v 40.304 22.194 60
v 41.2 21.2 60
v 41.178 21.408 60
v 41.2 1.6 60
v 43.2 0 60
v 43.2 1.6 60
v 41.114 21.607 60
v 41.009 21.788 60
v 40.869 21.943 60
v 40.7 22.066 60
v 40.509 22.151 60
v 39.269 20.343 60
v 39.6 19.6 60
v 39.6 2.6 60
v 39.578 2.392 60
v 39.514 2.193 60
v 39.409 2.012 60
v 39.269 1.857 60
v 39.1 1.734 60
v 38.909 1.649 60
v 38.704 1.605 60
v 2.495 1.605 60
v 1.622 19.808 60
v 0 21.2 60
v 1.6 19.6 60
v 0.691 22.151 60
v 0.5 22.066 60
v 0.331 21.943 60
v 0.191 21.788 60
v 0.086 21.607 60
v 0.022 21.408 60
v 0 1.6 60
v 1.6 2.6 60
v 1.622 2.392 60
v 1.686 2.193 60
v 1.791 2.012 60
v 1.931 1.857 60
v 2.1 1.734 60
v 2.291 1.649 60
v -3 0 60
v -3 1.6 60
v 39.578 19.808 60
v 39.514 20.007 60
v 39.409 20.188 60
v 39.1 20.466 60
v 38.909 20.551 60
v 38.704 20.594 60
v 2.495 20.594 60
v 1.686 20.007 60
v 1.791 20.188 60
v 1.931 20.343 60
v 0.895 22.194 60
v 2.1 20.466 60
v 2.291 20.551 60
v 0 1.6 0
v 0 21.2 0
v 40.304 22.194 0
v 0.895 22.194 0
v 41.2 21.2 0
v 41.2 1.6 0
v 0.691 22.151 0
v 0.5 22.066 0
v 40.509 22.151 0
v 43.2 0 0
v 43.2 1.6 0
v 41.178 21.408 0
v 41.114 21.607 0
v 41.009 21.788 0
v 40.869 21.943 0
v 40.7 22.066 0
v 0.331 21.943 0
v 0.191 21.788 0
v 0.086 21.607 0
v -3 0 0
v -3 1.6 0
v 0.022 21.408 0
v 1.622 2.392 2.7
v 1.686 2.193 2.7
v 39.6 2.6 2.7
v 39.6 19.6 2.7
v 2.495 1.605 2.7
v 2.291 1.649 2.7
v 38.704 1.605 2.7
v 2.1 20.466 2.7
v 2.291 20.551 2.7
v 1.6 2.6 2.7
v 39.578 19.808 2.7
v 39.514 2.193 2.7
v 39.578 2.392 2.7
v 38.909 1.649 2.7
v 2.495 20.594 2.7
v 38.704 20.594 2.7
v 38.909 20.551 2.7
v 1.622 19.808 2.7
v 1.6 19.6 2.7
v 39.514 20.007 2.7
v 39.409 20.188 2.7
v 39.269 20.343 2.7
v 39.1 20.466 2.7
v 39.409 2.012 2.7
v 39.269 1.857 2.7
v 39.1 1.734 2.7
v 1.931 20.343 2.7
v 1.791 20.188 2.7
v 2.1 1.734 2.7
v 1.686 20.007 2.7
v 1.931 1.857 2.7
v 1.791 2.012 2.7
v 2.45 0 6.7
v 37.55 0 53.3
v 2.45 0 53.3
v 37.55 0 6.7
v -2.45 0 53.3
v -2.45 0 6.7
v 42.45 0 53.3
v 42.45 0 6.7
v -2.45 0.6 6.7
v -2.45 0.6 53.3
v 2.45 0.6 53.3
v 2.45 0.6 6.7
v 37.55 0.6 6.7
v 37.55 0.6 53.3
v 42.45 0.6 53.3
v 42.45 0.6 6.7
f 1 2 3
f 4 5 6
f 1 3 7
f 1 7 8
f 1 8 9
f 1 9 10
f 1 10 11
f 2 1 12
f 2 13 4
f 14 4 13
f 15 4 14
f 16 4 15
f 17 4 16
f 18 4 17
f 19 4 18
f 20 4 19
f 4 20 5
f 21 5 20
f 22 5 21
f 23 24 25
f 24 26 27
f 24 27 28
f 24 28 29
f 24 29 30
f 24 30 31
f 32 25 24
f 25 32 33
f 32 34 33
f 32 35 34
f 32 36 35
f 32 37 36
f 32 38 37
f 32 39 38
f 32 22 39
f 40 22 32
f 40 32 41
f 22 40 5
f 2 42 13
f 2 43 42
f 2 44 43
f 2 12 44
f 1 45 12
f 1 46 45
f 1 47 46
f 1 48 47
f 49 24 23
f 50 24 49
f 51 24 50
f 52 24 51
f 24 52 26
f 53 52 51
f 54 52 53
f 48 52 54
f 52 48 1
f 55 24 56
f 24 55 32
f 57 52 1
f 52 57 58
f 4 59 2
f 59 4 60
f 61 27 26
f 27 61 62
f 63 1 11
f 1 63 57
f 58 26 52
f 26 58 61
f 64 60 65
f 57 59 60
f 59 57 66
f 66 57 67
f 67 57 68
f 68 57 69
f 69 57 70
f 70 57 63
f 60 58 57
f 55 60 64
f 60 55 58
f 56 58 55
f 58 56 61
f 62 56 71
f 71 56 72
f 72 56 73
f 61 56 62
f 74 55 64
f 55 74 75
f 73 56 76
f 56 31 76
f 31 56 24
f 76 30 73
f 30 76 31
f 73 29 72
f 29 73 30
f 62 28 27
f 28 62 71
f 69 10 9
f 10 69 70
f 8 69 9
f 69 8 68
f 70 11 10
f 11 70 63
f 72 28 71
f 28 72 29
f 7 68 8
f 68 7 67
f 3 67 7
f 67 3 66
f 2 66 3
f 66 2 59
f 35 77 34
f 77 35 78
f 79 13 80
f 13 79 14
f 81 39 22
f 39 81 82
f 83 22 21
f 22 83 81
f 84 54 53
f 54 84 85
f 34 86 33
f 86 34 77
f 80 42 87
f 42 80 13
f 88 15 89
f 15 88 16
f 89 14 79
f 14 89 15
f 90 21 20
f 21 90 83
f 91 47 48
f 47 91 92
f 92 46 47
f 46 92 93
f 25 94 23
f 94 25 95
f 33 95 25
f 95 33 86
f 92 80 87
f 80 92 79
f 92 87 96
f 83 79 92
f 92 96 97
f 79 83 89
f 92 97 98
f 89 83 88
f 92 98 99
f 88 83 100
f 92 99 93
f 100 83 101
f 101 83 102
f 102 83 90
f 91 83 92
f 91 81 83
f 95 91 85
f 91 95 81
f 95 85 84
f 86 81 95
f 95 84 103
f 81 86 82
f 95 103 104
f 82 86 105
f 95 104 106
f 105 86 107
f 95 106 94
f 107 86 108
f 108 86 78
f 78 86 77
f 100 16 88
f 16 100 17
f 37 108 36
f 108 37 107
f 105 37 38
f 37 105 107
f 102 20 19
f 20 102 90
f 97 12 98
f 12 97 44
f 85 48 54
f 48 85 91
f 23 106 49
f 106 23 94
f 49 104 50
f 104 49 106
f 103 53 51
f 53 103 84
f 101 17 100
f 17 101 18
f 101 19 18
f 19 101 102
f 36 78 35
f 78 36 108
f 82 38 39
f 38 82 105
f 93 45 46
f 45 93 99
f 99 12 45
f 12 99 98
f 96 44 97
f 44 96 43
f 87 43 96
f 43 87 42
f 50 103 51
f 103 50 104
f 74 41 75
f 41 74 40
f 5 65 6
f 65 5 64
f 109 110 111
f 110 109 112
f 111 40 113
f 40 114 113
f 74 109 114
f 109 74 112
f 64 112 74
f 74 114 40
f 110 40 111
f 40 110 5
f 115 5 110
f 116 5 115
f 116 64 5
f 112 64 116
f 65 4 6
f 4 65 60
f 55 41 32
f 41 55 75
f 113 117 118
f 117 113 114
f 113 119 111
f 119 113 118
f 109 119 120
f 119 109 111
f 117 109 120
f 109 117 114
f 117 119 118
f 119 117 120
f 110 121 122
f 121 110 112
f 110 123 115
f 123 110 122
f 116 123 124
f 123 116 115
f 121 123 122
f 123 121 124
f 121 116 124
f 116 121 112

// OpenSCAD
// file: ../../../modules/scad/roundedcube.scad
// More information: https://danielupshaw.com/openscad-rounded-corners/


// Examples
// color("Yellow")
// roundedcube(3, true, 0.7, "xmin");

// translate(v = [1, 0, 2])
// color("Pink")
// roundedcube([4, 2, 2], false, 0.6, "zmax");

// translate(v = [-4, -1, 2])
// color("Lightblue")
// roundedcube(2, false);

// translate(v = [0, 0, 6])
// color("Orange")
// roundedcube([3, 2, 2], true, 0.2);

// translate(v = [2.5, -0.5, 5])
// color("Green")
// roundedcube([3, 2, 2], false, 0.4, "z");

// Set to 0.01 for higher definition curves (renders slower)
$fs = 0.15;

module roundedcube(size = [1, 1, 1], center = false, radius = 0.5, apply_to = "all") {
	// If single value, convert to [x, y, z] vector
	size = (size[0] == undef) ? [size, size, size] : size;

	translate_min = radius;
	translate_xmax = size[0] - radius;
	translate_ymax = size[1] - radius;
	translate_zmax = size[2] - radius;

	diameter = radius * 2;

	obj_translate = (center == false) ?
		[0, 0, 0] : [
			-(size[0] / 2),
			-(size[1] / 2),
			-(size[2] / 2)
		];

	translate(v = obj_translate) {
		hull() {
			for (translate_x = [translate_min, translate_xmax]) {
				x_at = (translate_x == translate_min) ? "min" : "max";
				for (translate_y = [translate_min, translate_ymax]) {
					y_at = (translate_y == translate_min) ? "min" : "max";
					for (translate_z = [translate_min, translate_zmax]) {
						z_at = (translate_z == translate_min) ? "min" : "max";

						translate(v = [translate_x, translate_y, translate_z])
						if (
							(apply_to == "all") ||
							(apply_to == "xmin" && x_at == "min") || (apply_to == "xmax" && x_at == "max") ||
							(apply_to == "ymin" && y_at == "min") || (apply_to == "ymax" && y_at == "max") ||
							(apply_to == "zmin" && z_at == "min") || (apply_to == "zmax" && z_at == "max")
						) {
							sphere(r = radius);
						} else {
							rotate = 
								(apply_to == "xmin" || apply_to == "xmax" || apply_to == "x") ? [0, 90, 0] : (
								(apply_to == "ymin" || apply_to == "ymax" || apply_to == "y") ? [90, 90, 0] :
								[0, 0, 0]
							);
							rotate(a = rotate)
							cylinder(h = diameter, r = radius, center = true);
						}
					}
				}
			}
		}
	}
}
// file: IKEA Skadis v2 hook cutouts.scad
skadis_hook_width = 4.5;
skadis_hook_height = 46;
skadis_hole_spacing_width = 40; // middle to middle
cutout_tolerance_w = 0.4;
cutout_tolerance_h = 0.6;


module skadis_hook_cutout(center=false, hook_count=2) {
    
    if(center) {
        translate([-(skadis_hole_spacing_width + skadis_hook_width) / 2, 0, - skadis_hook_height / 2])
        object(hook_count);
    } else {
        object();
    }
    

}

module object(hook_count=2) {
    union() {

        // Cutout for the hook 1
        color("red")
        translate([- cutout_tolerance_w / 2, 0, - cutout_tolerance_h / 2])
        cube([skadis_hook_width + cutout_tolerance_w, 2, skadis_hook_height + cutout_tolerance_h]);

        // Cutout for the hook 2
        color("red")
        translate([- cutout_tolerance_w / 2 + skadis_hole_spacing_width, 0, - cutout_tolerance_h / 2])
        cube([skadis_hook_width + cutout_tolerance_w, 2, skadis_hook_height + cutout_tolerance_h]);

    }
}

skadis_hook_cutout(center = false);
// file: ../modules/roundedcube.scad
// More information: https://danielupshaw.com/openscad-rounded-corners/


// Examples
// color("Yellow")
// roundedcube(3, true, 0.7, "xmin");

// translate(v = [1, 0, 2])
// color("Pink")
// roundedcube([4, 2, 2], false, 0.6, "zmax");

// translate(v = [-4, -1, 2])
// color("Lightblue")
// roundedcube(2, false);

// translate(v = [0, 0, 6])
// color("Orange")
// roundedcube([3, 2, 2], true, 0.2);

// translate(v = [2.5, -0.5, 5])
// color("Green")
// roundedcube([3, 2, 2], false, 0.4, "z");

// Set to 0.01 for higher definition curves (renders slower)
$fs = 0.15;

module roundedcube(size = [1, 1, 1], center = false, radius = 0.5, apply_to = "all") {
	// If single value, convert to [x, y, z] vector
	size = (size[0] == undef) ? [size, size, size] : size;

	translate_min = radius;
	translate_xmax = size[0] - radius;
	translate_ymax = size[1] - radius;
	translate_zmax = size[2] - radius;

	diameter = radius * 2;

	obj_translate = (center == false) ?
		[0, 0, 0] : [
			-(size[0] / 2),
			-(size[1] / 2),
			-(size[2] / 2)
		];

	translate(v = obj_translate) {
		hull() {
			for (translate_x = [translate_min, translate_xmax]) {
				x_at = (translate_x == translate_min) ? "min" : "max";
				for (translate_y = [translate_min, translate_ymax]) {
					y_at = (translate_y == translate_min) ? "min" : "max";
					for (translate_z = [translate_min, translate_zmax]) {
						z_at = (translate_z == translate_min) ? "min" : "max";

						translate(v = [translate_x, translate_y, translate_z])
						if (
							(apply_to == "all") ||
							(apply_to == "xmin" && x_at == "min") || (apply_to == "xmax" && x_at == "max") ||
							(apply_to == "ymin" && y_at == "min") || (apply_to == "ymax" && y_at == "max") ||
							(apply_to == "zmin" && z_at == "min") || (apply_to == "zmax" && z_at == "max")
						) {
							sphere(r = radius);
						} else {
							rotate = 
								(apply_to == "xmin" || apply_to == "xmax" || apply_to == "x") ? [0, 90, 0] : (
								(apply_to == "ymin" || apply_to == "ymax" || apply_to == "y") ? [90, 90, 0] :
								[0, 0, 0]
							);
							rotate(a = rotate)
							cylinder(h = diameter, r = radius, center = true);
						}
					}
				}
			}
		}
	}
}
// file: IKEA Skadis v2 Bin.scad
_width = 60 + 1.6 + 1.6;
_depth = 60 + 1.6 + 1.6;
_height = 100;
_thickness = 1.6;  //Recommended minimum 1.6

//use <./IKEA Skadis include backwall with 3 hooks.scad>
use <../../../modules/scad/roundedcube.scad>
use <./IKEA Skadis v2 hook cutouts.scad>



module bin(_w, _d, _h, _t, _r) {

    difference() {
        translate([0, _d / 2, 0])
        difference() {
            roundedcube(size = [_w, _d, _h], center = true, radius = _r, apply_to = "z");
            color("red")
            translate([0, 0, _t])
            roundedcube(size = [_w - _t * 2, _d - _t * 2, _h - _t * 2 + 1], center = true, radius = _r, apply_to = "z");
        }
        color("green")
        translate([0, -1.4, 0])
        skadis_hook_cutout(center=true, 3);
    }
}

bin(_width, _depth, _height, _thickness, 5);
// main file
_width = 38 + 1.6 + 1.6;
_depth = 19 + 1.6 + 1.6;
_height = 60;
_thickness = 1.6; //Recommended minimum 1.6

_bottom_cutout = 0;
_bottom_cutout_width = 103;
_bottom_cutout_depth = 20;

_right_cutout = 0;
_right_cutout_depth = 13;
_right_cutout_height = 20;
_right_cutout_z_offset = 30; // (_height - _left_cutout_height) / 2
_right_cutout_y_offset = 20; // (_depth - _left_cutout_depth) / 2

_left_cutout = 0;
_left_cutout_depth = 13; //16
_left_cutout_height = 20;
_left_cutout_z_offset = 30; // (_height - _right_cutout_height) / 2
_left_cutout_y_offset = 20; // (_depth - _left_cutout_depth) / 2

_front_cutout = 0;
_front_cutout_width = 50;
_front_cutout_height = 40;
_front_cutout_z_offset = 10; // Middle = (_height - _front_cutout_height) / 2;

use <./IKEA Skadis v2 Bin.scad>
use <../modules/roundedcube.scad>
use <./IKEA Skadis v2 hook cutouts.scad>

difference() {
    union() {
        translate([_width / 2, 0, _height / 2])
        bin(_width, _depth, _height, _thickness, 1);

        color("gray")
        translate([-3, 0, 0])
        cube([_width + 5, _thickness, _height]);
    }

    color("green")
    translate([20, -1.4, 30])
    skadis_hook_cutout(center=true, 3);

    // Bottom cutout
    if(_bottom_cutout == 1) {
        translate([(_width - _bottom_cutout_width) / 2, (_depth - _bottom_cutout_depth) / 2, -1])
        //cube([_bottom_cutout_width, _bottom_cutout_depth, _thickness + 2]);
        roundedcube(size = [_bottom_cutout_width, _bottom_cutout_depth, _thickness + 2], center = false, radius = 5, apply_to = "z");
    }

    // Right cutout
    if(_right_cutout == 1) {
        translate([_width - _thickness - 1, _depth - _right_cutout_depth - _right_cutout_y_offset, _left_cutout_z_offset])
        roundedcube(size = [_thickness + 2, _right_cutout_depth, _right_cutout_height], center = false, radius = 2.5, apply_to = "x");
    }

    // Left cutout
    if(_left_cutout == 1) {
        translate([- 1, _depth - _left_cutout_depth - _left_cutout_y_offset, _left_cutout_z_offset])
        roundedcube(size = [_thickness + 2, _left_cutout_depth, _left_cutout_height], center = false, radius = 2.5, apply_to = "x");
    }

    // Front cutout
    if(_front_cutout == 1) {
        color("red")
        translate([(_width - _front_cutout_width) / 2, _depth -1, _front_cutout_z_offset])
        //cube([_bottom_cutout_width, _bottom_cutout_depth, _thickness + 2]);
        roundedcube(size = [_front_cutout_width, _thickness, _front_cutout_height], center = false, radius = 5, apply_to = "y");
    }
}



// color("gray")
// translate([2, 2, 0])
// cube([37, 18, 250]);
